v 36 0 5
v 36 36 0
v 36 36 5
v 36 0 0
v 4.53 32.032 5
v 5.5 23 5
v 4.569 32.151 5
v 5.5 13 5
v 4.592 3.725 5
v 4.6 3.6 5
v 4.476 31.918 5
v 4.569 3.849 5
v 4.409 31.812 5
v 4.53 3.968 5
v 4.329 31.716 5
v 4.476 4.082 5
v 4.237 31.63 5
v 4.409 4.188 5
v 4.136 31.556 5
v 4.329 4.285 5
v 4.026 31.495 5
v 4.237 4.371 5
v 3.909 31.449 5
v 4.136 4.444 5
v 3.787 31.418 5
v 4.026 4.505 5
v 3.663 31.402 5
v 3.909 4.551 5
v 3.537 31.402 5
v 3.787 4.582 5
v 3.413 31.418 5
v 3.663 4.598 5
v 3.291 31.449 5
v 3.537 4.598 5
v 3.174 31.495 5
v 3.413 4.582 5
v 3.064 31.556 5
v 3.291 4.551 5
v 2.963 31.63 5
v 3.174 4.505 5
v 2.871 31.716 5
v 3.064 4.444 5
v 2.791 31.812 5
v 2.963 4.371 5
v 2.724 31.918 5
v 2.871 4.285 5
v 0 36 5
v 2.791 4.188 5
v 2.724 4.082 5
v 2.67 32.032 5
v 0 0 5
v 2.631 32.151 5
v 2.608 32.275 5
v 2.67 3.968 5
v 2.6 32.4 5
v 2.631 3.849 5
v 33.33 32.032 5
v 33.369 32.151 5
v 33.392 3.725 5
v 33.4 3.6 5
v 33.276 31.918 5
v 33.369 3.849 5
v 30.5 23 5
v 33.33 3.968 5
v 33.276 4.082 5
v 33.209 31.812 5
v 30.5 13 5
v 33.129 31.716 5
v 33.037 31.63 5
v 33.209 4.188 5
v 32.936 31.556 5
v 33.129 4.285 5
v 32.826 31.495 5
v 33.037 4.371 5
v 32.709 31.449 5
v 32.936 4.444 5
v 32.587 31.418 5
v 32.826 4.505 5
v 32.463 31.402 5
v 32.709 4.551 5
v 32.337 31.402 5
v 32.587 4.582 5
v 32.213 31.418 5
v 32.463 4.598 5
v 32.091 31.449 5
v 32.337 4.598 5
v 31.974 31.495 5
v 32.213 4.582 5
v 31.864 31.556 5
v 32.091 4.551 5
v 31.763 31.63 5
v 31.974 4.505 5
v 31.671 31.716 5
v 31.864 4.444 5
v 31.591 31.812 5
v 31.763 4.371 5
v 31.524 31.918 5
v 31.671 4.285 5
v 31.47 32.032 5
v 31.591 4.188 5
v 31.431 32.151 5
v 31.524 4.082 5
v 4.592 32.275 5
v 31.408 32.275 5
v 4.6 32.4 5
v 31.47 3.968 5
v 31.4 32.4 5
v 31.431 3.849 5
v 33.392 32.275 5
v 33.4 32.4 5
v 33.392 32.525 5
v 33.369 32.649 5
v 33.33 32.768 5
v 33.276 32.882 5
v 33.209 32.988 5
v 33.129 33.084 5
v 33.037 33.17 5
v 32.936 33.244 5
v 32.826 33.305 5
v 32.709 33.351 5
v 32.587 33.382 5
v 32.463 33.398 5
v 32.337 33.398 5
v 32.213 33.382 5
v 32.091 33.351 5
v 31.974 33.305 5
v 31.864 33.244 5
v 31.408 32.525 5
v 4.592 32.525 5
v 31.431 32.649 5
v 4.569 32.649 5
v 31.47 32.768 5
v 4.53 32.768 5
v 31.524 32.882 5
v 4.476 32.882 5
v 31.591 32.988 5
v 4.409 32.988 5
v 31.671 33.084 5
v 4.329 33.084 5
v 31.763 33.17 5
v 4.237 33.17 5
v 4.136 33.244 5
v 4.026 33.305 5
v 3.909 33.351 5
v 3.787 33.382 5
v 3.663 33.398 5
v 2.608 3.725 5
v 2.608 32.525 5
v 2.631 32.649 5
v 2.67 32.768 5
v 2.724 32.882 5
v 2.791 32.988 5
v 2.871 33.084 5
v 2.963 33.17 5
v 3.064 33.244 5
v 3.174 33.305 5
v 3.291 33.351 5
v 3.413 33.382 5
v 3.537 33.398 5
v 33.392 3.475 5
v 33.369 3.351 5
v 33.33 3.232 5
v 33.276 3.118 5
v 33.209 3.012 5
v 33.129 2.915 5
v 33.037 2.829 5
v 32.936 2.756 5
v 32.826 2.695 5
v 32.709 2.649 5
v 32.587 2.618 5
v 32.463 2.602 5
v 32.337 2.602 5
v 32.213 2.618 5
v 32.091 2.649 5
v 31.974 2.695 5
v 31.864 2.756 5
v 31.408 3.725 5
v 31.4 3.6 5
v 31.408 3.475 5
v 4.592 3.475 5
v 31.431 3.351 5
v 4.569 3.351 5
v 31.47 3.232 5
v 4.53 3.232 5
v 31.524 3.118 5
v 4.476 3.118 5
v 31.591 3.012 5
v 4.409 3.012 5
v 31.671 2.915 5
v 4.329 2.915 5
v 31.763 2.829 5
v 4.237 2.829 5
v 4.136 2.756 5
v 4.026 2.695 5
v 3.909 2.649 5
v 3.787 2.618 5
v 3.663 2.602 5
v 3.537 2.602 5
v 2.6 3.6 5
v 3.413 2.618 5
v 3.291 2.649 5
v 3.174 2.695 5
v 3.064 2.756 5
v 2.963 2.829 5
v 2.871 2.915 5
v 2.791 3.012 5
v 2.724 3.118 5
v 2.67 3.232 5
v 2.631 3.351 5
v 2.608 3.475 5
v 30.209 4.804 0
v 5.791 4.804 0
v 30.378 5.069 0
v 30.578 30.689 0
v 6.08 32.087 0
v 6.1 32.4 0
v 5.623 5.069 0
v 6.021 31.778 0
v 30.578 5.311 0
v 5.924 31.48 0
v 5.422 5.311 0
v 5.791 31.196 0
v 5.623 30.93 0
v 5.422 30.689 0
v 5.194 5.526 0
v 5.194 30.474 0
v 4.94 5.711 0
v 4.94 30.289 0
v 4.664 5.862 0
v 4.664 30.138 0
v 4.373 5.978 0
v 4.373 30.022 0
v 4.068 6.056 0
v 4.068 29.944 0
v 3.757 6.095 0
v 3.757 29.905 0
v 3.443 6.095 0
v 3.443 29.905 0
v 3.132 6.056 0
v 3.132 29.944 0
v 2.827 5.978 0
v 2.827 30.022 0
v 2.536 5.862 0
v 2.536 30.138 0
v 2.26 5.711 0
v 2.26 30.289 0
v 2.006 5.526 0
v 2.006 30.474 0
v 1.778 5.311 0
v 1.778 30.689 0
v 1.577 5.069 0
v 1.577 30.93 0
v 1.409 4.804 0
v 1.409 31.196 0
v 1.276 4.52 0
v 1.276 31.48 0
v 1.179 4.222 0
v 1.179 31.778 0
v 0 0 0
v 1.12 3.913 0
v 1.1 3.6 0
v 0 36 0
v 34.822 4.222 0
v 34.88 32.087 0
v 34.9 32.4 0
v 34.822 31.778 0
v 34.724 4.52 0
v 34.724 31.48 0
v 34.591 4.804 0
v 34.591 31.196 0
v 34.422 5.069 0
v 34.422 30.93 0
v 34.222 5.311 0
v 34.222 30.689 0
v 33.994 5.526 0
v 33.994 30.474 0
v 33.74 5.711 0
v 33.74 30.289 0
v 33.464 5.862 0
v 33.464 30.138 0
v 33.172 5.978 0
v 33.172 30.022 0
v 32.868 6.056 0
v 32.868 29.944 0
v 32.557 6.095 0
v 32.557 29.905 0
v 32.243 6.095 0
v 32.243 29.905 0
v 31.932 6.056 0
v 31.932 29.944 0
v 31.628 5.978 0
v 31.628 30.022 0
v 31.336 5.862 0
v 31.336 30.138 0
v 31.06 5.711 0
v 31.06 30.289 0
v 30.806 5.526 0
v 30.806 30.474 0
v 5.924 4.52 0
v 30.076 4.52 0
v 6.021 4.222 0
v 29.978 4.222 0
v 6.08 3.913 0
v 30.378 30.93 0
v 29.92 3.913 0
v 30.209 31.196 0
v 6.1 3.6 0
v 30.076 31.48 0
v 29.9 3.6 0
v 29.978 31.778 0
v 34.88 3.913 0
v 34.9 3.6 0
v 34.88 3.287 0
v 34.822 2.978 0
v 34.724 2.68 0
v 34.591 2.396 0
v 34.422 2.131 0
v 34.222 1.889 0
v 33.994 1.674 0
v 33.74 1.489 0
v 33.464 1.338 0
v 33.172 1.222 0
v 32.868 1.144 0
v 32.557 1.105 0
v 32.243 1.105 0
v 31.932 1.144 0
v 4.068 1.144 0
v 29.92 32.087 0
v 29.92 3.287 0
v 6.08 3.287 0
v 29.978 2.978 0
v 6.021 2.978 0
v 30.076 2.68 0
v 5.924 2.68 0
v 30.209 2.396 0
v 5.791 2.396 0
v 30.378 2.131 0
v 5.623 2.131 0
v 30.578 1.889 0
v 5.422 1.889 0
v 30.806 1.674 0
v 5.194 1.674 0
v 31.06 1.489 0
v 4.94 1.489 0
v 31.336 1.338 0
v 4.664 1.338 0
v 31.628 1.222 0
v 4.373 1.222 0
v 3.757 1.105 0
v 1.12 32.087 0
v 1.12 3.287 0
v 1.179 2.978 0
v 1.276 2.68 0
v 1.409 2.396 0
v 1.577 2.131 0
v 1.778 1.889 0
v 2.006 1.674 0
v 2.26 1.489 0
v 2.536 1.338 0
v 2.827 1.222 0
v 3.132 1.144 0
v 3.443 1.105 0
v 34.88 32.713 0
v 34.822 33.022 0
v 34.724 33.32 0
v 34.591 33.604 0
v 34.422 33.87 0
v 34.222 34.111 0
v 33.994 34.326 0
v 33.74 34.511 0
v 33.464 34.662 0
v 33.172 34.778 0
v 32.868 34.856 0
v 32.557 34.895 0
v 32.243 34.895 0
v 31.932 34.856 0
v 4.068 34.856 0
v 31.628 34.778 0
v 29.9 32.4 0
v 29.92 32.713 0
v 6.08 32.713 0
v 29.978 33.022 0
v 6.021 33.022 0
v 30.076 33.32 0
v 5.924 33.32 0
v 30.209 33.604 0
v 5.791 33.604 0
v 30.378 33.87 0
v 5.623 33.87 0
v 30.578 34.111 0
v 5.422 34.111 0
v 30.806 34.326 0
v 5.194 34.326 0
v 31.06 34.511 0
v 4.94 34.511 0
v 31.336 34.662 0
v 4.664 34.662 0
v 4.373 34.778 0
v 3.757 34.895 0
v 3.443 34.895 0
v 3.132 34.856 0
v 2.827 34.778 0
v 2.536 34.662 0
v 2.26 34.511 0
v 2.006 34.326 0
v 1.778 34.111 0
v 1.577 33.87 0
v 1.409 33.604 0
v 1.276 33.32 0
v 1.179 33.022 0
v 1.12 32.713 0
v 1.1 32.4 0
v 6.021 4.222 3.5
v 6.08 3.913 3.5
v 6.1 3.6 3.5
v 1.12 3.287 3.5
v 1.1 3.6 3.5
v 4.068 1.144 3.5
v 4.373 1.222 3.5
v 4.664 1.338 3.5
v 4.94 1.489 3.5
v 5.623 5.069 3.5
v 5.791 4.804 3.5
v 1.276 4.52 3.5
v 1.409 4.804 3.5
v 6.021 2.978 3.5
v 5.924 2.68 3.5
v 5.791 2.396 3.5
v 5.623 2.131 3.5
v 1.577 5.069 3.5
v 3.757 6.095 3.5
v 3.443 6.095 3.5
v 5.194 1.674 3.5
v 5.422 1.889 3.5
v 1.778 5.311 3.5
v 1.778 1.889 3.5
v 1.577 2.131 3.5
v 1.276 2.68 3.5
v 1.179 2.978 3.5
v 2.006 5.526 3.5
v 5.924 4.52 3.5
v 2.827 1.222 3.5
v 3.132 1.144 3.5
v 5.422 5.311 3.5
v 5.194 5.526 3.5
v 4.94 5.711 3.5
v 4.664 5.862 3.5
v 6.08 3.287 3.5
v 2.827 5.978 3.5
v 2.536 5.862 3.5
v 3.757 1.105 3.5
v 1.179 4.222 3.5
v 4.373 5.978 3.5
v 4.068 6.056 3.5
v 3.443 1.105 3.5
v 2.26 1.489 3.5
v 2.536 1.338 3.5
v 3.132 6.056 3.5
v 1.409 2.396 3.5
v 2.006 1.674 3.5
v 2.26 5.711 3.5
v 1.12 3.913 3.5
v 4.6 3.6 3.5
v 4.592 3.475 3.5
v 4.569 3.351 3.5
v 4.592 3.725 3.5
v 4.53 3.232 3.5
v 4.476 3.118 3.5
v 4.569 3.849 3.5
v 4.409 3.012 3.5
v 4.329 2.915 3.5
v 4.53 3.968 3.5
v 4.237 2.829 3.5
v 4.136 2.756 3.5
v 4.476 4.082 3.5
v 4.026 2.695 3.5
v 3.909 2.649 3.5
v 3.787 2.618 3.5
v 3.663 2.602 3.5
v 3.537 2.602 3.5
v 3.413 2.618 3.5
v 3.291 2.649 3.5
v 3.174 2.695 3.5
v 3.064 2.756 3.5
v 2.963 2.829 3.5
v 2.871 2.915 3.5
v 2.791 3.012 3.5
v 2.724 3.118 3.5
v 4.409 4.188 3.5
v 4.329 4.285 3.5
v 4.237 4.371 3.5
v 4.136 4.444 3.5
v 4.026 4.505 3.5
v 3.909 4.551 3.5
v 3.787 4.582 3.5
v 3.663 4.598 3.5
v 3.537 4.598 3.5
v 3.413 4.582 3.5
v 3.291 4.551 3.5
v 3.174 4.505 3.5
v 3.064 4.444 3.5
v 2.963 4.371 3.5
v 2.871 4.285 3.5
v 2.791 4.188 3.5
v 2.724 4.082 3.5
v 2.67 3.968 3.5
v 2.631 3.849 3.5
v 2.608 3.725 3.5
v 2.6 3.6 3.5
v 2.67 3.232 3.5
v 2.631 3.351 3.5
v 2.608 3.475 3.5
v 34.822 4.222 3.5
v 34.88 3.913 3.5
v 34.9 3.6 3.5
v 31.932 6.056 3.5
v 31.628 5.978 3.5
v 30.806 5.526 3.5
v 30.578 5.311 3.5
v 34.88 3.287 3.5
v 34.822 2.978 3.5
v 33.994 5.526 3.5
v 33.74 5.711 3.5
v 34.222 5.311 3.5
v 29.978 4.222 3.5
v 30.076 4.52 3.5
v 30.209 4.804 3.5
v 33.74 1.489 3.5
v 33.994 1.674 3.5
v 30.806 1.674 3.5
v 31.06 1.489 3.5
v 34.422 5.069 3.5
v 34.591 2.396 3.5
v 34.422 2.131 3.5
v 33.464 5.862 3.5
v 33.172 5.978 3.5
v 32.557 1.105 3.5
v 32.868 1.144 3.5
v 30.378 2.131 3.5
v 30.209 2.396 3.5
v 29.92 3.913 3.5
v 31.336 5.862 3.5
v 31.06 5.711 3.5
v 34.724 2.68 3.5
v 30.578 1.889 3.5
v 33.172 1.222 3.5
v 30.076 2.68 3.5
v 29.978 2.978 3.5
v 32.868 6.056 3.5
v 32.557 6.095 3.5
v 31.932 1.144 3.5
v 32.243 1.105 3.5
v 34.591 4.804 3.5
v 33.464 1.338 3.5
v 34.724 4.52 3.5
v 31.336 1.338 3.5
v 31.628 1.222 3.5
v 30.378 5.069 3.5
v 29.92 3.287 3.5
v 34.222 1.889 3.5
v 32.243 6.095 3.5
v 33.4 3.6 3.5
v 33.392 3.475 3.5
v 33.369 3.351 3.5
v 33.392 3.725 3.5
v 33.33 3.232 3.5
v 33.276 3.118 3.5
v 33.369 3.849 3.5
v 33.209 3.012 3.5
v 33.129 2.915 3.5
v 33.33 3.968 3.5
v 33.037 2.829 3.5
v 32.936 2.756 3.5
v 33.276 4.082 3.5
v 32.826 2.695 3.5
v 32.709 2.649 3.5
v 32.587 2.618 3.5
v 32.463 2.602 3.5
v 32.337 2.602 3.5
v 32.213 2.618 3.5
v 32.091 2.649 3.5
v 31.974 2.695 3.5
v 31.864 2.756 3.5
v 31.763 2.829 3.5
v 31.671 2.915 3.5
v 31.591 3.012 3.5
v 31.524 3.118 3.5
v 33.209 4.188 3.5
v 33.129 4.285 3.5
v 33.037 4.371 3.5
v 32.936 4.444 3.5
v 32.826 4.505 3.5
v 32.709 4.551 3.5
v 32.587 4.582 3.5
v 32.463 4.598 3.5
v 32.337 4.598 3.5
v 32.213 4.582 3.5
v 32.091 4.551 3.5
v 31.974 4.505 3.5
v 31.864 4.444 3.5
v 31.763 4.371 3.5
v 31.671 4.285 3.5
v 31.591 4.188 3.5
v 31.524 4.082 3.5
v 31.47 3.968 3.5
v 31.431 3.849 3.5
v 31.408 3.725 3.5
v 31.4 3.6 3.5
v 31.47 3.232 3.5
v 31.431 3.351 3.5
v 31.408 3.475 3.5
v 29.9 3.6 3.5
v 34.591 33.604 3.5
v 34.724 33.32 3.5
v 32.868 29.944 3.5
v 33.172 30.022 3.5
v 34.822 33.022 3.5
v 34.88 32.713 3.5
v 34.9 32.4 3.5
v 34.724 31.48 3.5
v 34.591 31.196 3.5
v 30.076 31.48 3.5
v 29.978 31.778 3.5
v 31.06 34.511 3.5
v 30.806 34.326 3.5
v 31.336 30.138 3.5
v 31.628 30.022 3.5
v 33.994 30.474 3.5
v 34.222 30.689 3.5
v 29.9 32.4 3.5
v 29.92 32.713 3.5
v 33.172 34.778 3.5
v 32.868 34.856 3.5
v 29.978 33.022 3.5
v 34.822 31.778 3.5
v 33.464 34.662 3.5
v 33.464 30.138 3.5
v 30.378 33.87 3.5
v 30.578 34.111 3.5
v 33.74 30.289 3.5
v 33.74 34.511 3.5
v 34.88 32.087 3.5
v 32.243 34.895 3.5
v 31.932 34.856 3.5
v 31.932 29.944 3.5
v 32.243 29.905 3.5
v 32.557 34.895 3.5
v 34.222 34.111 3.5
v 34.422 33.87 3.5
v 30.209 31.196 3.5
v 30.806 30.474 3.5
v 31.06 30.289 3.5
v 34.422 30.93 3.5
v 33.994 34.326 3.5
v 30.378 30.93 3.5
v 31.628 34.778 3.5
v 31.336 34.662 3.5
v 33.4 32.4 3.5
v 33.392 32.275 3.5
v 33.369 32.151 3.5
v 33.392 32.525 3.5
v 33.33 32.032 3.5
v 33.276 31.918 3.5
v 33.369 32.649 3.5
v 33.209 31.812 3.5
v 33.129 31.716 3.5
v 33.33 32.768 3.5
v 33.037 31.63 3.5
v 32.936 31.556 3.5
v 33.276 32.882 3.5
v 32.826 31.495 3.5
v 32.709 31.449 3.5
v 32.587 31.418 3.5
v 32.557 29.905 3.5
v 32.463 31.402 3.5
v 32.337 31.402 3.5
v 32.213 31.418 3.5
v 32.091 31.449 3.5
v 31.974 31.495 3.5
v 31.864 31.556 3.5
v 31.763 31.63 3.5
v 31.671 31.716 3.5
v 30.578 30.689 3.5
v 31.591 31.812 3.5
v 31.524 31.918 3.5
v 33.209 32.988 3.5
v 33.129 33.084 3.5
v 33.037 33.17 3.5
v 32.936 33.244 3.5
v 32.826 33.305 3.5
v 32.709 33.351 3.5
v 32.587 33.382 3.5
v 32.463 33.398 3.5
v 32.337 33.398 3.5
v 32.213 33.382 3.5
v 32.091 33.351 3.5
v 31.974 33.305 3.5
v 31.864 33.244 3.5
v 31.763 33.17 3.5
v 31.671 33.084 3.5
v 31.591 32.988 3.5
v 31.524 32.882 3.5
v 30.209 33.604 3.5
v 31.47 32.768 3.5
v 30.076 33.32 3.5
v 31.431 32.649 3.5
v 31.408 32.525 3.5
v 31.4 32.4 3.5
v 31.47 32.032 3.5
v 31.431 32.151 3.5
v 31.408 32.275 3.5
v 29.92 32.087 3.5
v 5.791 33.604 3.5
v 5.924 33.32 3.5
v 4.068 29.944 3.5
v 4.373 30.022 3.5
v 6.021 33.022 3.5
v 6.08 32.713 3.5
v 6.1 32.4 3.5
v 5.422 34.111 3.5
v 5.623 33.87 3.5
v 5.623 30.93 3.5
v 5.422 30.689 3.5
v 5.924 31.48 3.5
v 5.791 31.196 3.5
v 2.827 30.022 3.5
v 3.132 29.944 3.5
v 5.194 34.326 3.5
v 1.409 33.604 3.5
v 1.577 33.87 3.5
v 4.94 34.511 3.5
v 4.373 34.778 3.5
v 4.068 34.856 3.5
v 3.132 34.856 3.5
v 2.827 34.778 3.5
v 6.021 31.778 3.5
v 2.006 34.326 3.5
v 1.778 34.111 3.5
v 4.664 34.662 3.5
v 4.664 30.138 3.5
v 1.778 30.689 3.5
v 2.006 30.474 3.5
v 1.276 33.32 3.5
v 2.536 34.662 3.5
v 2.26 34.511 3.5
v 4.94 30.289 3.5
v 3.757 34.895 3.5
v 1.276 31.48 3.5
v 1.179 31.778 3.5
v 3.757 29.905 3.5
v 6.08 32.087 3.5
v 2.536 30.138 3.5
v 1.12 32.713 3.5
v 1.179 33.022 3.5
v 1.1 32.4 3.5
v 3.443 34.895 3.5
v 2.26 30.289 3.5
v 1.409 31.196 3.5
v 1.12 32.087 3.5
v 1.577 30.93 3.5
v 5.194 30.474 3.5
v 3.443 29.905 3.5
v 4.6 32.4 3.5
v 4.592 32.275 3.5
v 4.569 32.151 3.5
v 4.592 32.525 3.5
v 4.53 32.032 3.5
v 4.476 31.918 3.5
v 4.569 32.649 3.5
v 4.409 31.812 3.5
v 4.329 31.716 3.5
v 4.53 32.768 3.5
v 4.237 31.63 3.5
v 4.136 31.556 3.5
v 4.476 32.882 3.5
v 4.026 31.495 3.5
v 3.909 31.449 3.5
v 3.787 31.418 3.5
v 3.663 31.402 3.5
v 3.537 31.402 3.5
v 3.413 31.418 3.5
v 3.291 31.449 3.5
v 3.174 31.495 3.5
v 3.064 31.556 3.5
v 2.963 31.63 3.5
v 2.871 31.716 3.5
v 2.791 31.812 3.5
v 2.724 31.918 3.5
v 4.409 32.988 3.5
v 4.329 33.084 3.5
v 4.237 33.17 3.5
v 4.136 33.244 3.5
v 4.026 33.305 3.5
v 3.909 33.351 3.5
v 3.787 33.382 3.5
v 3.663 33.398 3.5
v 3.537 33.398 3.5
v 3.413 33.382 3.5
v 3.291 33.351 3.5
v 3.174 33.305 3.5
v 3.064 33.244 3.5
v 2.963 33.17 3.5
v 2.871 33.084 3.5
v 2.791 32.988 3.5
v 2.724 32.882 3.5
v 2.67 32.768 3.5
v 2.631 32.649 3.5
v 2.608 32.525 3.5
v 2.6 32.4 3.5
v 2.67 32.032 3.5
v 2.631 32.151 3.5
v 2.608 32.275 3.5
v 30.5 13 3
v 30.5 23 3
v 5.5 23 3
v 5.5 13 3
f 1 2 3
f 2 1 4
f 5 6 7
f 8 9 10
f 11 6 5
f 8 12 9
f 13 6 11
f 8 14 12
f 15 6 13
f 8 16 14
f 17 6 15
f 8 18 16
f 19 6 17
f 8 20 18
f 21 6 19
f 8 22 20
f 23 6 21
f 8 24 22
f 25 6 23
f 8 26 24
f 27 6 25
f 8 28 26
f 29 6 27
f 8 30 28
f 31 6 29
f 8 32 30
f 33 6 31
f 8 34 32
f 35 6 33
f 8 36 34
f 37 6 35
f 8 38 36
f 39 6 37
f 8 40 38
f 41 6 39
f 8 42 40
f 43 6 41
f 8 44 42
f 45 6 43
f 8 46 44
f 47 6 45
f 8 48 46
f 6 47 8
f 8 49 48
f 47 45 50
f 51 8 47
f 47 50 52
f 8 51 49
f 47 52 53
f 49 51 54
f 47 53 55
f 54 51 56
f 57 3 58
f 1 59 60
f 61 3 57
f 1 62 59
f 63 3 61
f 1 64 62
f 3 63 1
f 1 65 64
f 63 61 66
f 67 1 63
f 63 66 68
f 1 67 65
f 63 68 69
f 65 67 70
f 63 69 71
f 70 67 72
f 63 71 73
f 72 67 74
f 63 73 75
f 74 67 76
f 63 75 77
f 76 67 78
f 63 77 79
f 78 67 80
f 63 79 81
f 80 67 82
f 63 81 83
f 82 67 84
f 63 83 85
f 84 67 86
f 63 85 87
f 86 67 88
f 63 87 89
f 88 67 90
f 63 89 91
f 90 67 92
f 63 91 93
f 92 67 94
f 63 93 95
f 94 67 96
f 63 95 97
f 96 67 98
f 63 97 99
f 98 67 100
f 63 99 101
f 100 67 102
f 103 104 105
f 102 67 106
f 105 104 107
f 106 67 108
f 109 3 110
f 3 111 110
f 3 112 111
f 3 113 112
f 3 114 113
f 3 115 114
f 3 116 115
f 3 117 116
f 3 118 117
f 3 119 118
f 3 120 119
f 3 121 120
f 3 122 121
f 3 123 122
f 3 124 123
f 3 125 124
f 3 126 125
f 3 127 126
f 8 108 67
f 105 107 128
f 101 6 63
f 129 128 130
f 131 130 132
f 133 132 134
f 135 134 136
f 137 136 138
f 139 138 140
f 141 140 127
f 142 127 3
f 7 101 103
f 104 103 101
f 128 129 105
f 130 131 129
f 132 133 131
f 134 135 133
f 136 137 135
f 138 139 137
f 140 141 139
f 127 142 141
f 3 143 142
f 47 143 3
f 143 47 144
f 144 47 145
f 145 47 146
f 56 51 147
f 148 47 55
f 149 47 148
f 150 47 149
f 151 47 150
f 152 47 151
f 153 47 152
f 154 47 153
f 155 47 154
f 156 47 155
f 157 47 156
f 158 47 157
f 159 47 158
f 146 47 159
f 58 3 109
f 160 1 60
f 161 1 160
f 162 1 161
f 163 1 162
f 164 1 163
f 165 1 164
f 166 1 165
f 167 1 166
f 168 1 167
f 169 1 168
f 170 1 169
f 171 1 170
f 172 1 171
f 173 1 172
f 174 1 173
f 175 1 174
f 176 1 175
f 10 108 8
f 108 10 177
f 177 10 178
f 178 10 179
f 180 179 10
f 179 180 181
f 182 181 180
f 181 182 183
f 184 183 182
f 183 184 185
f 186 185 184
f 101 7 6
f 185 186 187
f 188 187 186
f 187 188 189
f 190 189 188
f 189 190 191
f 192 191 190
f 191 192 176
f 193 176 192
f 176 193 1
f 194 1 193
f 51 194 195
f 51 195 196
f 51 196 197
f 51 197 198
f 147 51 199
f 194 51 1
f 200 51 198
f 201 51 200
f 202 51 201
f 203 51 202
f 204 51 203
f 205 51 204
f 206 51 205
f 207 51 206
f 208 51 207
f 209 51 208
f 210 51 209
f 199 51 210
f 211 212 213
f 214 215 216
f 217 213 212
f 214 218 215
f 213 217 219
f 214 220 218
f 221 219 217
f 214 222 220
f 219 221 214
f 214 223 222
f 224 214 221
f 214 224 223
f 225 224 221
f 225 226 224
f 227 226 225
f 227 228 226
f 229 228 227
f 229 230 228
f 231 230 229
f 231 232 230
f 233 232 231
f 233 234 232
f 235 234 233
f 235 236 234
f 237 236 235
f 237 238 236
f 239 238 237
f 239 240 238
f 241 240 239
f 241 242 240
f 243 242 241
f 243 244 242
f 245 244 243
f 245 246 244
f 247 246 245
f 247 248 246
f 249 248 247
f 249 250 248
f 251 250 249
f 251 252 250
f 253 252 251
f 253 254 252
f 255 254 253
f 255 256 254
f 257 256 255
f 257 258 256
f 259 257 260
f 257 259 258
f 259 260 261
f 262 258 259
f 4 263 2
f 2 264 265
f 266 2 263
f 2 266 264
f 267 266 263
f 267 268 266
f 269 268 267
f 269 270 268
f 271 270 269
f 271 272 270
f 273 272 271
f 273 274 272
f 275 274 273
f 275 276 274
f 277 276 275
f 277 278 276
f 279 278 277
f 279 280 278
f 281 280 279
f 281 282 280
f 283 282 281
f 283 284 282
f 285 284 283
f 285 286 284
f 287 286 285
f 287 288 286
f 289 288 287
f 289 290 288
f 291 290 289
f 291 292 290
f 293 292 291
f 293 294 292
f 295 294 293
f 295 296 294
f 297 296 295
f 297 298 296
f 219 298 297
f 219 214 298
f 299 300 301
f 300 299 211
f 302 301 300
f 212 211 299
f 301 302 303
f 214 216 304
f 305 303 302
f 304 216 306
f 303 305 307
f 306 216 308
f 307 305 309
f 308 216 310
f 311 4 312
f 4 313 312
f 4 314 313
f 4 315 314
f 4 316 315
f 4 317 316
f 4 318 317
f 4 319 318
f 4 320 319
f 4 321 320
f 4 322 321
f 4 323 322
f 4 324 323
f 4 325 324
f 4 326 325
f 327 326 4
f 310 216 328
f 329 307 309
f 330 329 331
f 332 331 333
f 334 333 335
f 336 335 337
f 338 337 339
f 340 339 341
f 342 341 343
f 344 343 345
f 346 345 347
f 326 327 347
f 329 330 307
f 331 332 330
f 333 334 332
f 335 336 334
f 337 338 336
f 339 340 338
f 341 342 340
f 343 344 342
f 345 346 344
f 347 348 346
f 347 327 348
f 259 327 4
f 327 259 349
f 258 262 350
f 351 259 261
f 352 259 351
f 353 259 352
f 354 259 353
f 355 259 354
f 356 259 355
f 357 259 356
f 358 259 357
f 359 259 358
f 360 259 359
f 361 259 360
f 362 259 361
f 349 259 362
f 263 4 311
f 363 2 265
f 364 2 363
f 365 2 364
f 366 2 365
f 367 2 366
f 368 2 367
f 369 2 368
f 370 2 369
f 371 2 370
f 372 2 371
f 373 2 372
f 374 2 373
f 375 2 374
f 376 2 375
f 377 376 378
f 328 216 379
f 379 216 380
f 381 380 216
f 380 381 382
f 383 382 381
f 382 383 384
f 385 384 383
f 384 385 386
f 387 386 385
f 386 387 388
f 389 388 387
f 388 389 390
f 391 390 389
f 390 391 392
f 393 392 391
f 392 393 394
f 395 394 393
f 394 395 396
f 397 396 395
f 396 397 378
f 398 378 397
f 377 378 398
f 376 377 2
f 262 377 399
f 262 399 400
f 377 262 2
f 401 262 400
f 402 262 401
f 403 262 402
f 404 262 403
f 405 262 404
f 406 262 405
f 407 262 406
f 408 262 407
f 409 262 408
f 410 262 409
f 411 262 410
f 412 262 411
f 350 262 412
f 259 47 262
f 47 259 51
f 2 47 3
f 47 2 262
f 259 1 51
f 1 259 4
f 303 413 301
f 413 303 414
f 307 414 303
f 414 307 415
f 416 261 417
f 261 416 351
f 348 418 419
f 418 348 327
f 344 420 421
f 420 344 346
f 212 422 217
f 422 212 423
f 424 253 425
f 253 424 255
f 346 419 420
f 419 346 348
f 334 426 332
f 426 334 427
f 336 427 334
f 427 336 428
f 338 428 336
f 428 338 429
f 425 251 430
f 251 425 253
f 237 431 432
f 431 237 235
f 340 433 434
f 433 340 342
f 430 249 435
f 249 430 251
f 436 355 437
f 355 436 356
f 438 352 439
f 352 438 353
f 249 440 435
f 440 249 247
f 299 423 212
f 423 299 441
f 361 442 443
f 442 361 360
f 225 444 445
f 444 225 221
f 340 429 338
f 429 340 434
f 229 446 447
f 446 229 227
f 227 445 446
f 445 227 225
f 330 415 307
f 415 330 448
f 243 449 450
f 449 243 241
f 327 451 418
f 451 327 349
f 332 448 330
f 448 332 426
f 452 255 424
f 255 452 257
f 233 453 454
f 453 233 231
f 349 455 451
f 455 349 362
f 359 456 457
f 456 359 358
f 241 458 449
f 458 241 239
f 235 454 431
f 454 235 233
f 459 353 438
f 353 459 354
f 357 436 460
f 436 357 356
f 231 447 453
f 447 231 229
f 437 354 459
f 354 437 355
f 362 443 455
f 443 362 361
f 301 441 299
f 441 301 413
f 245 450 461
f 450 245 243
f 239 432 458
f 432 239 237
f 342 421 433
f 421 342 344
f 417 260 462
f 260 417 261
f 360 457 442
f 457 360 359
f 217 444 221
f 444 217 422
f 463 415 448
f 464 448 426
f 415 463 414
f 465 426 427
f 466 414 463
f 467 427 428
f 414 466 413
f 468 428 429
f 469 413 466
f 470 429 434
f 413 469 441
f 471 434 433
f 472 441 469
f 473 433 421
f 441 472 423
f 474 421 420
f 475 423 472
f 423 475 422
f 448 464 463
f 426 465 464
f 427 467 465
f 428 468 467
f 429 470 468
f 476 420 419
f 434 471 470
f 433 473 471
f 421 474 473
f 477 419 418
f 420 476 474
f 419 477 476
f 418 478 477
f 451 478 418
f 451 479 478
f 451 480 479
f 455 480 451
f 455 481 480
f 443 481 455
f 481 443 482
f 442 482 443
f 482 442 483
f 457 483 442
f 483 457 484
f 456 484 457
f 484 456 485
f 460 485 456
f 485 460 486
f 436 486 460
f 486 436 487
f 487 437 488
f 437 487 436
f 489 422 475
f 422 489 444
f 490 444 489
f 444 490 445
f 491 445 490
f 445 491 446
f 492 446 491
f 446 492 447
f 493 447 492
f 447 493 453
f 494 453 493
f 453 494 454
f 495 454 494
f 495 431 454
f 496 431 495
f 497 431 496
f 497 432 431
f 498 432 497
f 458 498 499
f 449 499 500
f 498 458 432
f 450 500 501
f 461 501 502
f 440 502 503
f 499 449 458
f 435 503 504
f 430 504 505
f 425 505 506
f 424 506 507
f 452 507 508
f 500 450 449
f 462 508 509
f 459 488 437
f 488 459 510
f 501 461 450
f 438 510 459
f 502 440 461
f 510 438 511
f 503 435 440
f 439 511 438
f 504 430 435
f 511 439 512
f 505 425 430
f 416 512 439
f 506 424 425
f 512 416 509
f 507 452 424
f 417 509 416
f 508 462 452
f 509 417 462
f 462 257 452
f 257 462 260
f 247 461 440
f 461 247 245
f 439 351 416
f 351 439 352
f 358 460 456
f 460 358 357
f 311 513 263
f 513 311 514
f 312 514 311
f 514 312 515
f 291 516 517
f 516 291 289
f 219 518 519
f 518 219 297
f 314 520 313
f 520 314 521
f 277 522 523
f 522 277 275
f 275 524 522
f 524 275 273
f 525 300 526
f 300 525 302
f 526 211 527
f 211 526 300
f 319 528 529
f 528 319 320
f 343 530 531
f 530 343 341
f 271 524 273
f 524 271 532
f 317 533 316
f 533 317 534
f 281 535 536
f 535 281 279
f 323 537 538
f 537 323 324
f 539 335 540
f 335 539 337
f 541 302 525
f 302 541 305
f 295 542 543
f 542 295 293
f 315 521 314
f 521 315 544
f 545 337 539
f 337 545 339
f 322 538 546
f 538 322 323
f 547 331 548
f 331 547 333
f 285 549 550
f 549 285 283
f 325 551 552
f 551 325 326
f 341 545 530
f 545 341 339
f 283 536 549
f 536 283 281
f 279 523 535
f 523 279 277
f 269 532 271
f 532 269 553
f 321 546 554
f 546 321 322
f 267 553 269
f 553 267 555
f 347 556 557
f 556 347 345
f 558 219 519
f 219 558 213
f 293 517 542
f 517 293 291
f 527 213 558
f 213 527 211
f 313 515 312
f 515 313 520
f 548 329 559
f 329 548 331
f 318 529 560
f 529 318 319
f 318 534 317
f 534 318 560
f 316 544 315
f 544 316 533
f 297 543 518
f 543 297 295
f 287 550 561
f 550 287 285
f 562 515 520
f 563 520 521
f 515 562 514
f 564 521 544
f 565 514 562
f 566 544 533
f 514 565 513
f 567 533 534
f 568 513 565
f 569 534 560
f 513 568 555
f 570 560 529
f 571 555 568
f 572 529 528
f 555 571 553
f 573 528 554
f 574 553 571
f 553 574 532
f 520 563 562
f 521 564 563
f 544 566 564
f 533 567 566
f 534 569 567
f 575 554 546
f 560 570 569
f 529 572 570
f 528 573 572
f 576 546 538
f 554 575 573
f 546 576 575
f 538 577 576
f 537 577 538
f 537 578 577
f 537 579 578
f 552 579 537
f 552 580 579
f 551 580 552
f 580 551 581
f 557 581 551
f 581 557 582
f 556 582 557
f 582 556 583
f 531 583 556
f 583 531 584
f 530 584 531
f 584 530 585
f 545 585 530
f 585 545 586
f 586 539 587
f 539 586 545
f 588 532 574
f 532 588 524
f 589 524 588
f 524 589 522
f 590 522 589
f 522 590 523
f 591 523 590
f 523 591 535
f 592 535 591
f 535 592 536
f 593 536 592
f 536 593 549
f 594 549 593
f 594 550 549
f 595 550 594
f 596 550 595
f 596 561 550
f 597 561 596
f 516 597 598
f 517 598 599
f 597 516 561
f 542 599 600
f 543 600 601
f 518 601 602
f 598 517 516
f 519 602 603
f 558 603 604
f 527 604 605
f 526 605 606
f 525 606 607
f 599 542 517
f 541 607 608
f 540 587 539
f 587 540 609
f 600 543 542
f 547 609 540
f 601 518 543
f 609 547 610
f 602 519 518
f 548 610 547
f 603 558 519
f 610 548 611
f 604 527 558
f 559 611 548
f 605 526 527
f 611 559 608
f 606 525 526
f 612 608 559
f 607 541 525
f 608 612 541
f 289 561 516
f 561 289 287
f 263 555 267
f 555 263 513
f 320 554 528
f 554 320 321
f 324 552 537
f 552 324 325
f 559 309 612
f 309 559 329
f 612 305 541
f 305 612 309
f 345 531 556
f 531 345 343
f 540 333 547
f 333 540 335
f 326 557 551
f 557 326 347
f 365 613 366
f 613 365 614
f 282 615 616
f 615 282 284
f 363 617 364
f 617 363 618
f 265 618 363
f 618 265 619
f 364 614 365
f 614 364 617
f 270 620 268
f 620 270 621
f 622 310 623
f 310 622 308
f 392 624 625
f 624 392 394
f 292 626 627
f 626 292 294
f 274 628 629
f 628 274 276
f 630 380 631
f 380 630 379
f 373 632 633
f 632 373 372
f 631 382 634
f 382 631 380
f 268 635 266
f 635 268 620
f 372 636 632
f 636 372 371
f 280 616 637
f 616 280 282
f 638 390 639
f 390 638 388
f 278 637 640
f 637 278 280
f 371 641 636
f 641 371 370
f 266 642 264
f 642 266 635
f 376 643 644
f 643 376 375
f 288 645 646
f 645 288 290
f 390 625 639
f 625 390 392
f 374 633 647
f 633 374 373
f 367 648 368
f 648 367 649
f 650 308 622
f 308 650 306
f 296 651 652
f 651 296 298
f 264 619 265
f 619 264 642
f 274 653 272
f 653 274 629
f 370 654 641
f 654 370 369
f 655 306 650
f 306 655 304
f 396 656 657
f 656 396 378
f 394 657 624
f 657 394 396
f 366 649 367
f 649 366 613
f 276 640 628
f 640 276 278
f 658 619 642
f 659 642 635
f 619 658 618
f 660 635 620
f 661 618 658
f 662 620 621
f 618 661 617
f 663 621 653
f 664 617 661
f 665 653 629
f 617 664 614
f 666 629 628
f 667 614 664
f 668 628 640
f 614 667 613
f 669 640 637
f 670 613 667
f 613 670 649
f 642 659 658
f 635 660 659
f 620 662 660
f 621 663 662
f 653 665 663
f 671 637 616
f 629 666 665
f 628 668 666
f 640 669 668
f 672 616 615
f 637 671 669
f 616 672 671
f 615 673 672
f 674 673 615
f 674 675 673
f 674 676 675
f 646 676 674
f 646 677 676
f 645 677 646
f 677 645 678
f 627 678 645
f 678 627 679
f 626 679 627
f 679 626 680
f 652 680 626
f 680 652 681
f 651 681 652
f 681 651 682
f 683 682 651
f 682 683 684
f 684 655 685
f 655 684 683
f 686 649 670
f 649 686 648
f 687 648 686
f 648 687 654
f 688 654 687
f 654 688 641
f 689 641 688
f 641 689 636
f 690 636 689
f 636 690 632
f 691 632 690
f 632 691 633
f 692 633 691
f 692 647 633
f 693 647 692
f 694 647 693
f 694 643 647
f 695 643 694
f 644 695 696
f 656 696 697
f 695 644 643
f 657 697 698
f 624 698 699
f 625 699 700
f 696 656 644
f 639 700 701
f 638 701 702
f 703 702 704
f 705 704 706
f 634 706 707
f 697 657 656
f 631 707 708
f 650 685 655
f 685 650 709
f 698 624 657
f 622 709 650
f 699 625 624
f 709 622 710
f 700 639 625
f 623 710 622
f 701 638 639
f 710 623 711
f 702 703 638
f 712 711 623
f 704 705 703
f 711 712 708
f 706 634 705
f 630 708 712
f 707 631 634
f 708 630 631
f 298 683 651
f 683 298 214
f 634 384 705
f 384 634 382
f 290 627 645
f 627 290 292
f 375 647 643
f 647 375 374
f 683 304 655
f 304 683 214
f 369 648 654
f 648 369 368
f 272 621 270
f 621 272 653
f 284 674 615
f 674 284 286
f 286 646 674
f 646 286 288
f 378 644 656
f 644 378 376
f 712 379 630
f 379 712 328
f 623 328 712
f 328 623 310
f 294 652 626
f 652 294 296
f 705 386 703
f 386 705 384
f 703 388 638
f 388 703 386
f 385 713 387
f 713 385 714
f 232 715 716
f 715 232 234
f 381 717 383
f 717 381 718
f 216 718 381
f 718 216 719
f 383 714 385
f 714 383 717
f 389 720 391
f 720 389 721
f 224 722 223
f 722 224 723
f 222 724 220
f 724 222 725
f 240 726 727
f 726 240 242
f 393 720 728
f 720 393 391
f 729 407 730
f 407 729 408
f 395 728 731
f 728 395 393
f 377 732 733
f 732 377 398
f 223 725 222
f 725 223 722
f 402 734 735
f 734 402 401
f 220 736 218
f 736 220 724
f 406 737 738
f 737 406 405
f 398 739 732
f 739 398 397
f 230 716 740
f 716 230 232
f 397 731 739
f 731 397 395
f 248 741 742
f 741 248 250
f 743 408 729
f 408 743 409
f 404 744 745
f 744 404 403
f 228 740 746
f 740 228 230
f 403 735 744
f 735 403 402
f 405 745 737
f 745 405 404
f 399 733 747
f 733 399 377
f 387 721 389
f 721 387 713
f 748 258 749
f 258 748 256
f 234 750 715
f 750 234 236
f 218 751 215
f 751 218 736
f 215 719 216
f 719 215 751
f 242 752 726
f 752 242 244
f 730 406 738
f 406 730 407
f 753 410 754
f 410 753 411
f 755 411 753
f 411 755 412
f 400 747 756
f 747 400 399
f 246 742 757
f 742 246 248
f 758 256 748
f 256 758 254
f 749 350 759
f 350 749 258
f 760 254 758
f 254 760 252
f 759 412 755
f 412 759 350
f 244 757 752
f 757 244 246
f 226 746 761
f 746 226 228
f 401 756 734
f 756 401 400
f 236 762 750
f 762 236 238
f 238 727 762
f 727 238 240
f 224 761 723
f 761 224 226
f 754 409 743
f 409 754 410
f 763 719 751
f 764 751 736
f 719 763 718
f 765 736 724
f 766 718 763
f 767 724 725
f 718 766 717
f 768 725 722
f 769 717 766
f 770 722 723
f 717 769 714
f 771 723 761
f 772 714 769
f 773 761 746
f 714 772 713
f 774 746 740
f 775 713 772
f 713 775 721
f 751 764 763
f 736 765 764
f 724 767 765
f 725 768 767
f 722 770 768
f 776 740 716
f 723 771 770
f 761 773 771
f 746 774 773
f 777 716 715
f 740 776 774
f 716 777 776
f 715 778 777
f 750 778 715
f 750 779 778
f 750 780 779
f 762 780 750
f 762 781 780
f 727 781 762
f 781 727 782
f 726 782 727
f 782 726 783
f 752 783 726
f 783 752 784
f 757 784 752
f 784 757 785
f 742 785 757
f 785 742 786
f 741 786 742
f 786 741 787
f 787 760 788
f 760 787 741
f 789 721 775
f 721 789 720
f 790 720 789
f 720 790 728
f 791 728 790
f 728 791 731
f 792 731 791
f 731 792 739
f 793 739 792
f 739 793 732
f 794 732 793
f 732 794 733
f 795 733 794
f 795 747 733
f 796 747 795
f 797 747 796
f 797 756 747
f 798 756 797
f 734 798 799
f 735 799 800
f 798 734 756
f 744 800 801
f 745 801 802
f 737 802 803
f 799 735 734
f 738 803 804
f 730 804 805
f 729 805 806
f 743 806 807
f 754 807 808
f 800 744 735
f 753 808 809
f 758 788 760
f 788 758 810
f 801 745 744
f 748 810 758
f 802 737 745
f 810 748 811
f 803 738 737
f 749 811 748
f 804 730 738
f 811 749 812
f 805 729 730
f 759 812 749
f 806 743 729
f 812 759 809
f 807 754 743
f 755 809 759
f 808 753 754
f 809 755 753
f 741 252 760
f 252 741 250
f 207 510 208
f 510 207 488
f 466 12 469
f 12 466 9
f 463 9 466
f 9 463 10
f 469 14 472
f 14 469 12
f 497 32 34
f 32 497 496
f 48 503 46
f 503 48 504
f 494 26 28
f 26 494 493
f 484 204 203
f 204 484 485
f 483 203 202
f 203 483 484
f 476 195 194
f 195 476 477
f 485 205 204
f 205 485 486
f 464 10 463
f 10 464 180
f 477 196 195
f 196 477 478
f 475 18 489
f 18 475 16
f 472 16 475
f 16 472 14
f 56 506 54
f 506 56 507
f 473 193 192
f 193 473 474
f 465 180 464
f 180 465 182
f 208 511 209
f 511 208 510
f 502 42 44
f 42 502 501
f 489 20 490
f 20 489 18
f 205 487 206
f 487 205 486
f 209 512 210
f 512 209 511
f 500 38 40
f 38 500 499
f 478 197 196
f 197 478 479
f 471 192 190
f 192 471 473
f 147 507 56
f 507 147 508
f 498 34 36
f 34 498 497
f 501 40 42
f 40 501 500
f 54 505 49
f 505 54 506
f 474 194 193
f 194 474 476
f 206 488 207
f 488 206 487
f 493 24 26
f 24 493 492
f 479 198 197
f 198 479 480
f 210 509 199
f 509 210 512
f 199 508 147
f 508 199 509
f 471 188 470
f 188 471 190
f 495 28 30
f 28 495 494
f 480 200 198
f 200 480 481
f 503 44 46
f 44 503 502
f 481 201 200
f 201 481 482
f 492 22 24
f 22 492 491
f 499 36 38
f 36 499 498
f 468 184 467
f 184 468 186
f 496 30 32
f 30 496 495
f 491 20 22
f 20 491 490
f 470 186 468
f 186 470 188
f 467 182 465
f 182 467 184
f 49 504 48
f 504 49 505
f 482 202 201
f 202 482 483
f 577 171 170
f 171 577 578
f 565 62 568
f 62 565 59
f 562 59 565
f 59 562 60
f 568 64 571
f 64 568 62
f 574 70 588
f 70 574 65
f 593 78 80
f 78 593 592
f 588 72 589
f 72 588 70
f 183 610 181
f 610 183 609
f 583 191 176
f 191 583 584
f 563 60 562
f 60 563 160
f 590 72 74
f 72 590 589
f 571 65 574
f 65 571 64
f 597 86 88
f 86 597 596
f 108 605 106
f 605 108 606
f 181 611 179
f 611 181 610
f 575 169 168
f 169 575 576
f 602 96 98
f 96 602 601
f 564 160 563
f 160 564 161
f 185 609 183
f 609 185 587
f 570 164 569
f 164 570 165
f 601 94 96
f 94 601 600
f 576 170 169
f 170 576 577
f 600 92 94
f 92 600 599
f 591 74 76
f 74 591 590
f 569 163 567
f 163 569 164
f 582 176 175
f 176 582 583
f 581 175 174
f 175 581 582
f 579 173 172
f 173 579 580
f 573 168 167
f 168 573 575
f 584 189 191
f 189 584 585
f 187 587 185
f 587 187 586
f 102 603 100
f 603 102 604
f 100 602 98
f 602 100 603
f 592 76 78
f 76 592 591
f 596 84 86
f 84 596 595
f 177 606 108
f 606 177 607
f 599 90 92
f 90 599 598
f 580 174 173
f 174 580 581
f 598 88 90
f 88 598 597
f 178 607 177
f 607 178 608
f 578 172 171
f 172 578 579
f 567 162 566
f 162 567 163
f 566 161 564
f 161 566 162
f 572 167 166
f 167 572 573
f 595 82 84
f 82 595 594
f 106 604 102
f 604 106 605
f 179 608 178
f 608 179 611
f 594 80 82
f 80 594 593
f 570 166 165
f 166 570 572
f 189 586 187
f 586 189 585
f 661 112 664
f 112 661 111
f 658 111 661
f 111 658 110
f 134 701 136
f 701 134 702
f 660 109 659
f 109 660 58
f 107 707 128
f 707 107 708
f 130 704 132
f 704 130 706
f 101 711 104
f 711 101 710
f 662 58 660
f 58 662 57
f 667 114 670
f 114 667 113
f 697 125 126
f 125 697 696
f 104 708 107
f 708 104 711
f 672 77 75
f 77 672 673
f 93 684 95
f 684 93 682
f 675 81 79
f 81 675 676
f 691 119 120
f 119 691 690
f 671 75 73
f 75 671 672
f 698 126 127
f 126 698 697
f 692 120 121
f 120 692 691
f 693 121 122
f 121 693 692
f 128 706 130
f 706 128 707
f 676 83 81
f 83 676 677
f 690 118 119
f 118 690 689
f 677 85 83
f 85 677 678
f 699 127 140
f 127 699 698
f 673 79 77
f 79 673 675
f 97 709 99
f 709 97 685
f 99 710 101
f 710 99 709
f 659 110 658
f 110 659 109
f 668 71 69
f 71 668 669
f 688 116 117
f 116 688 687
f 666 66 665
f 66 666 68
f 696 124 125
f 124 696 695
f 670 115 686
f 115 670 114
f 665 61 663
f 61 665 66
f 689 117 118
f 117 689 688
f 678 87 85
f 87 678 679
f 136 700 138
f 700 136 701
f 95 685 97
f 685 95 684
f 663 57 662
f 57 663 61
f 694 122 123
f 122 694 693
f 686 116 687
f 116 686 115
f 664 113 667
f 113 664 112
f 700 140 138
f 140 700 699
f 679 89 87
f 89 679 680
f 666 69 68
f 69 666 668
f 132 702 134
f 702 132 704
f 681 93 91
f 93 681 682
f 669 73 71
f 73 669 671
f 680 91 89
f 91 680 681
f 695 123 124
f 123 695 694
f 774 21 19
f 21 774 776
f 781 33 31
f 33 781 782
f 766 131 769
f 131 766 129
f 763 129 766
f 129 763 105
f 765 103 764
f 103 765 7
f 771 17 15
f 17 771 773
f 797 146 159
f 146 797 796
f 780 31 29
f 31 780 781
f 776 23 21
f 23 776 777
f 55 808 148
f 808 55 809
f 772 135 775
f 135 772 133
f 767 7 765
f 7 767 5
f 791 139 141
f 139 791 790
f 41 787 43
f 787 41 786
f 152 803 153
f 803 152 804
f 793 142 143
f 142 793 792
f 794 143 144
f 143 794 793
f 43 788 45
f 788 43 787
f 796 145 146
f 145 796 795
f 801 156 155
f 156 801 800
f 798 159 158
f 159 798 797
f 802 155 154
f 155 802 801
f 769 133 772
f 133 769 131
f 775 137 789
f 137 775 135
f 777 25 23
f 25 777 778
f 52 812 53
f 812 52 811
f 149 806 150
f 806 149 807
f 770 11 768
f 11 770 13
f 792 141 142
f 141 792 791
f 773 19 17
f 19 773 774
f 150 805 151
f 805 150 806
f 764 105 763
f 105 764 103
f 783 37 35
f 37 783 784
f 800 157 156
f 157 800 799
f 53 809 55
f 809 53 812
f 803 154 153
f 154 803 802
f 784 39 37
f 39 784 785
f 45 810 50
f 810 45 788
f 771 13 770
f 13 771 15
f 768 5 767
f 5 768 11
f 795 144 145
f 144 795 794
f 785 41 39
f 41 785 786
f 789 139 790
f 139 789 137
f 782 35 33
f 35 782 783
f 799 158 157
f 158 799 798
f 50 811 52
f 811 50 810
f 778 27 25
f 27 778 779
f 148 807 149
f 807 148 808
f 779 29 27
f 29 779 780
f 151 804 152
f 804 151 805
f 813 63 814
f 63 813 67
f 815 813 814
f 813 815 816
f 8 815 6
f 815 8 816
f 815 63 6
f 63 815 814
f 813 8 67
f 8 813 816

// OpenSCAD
$fn=50;

width=36.0;
depth=36.0;
height=5;


h=4.5;
r=2.5;
d=28.8;
x=(width-d)/2;
y=x;
z=-1;

difference() {

difference() {

difference() {

cube([width,depth,height], center=false);

translate(v = [x, y, z]) {
cylinder(h=h, r=r, center=false);
}

translate(v = [x+d, y, z]) {
cylinder(h=h, r=r, center=false);
}

translate(v = [x+d, y+d, z]) {
cylinder(h=h, r=r, center=false);
}

translate(v = [x, y+d, z]) {
cylinder(h=h, r=r, center=false);
}

}

h2=3;
r2=1;
d2=28.8;
x2=(width-d2)/2;
y2=x2;
z2=3;

translate(v = [x2, y2, z2]) {
cylinder(h=h2, r=r2, center=false);
}

translate(v = [x2+d, y2, z2]) {
cylinder(h=h2, r=r2, center=false);
}

translate(v = [x2+d, y2+d2, z2]) {
cylinder(h=h2, r=r2, center=false);
}

translate(v = [x2, y2+d2, z2]) {
cylinder(h=h2, r=r2, center=false);
}

}

translate(v = [(width-25)/2, (depth-10)/2, 3]) {
cube([25,10,3], center=false);
}

}
